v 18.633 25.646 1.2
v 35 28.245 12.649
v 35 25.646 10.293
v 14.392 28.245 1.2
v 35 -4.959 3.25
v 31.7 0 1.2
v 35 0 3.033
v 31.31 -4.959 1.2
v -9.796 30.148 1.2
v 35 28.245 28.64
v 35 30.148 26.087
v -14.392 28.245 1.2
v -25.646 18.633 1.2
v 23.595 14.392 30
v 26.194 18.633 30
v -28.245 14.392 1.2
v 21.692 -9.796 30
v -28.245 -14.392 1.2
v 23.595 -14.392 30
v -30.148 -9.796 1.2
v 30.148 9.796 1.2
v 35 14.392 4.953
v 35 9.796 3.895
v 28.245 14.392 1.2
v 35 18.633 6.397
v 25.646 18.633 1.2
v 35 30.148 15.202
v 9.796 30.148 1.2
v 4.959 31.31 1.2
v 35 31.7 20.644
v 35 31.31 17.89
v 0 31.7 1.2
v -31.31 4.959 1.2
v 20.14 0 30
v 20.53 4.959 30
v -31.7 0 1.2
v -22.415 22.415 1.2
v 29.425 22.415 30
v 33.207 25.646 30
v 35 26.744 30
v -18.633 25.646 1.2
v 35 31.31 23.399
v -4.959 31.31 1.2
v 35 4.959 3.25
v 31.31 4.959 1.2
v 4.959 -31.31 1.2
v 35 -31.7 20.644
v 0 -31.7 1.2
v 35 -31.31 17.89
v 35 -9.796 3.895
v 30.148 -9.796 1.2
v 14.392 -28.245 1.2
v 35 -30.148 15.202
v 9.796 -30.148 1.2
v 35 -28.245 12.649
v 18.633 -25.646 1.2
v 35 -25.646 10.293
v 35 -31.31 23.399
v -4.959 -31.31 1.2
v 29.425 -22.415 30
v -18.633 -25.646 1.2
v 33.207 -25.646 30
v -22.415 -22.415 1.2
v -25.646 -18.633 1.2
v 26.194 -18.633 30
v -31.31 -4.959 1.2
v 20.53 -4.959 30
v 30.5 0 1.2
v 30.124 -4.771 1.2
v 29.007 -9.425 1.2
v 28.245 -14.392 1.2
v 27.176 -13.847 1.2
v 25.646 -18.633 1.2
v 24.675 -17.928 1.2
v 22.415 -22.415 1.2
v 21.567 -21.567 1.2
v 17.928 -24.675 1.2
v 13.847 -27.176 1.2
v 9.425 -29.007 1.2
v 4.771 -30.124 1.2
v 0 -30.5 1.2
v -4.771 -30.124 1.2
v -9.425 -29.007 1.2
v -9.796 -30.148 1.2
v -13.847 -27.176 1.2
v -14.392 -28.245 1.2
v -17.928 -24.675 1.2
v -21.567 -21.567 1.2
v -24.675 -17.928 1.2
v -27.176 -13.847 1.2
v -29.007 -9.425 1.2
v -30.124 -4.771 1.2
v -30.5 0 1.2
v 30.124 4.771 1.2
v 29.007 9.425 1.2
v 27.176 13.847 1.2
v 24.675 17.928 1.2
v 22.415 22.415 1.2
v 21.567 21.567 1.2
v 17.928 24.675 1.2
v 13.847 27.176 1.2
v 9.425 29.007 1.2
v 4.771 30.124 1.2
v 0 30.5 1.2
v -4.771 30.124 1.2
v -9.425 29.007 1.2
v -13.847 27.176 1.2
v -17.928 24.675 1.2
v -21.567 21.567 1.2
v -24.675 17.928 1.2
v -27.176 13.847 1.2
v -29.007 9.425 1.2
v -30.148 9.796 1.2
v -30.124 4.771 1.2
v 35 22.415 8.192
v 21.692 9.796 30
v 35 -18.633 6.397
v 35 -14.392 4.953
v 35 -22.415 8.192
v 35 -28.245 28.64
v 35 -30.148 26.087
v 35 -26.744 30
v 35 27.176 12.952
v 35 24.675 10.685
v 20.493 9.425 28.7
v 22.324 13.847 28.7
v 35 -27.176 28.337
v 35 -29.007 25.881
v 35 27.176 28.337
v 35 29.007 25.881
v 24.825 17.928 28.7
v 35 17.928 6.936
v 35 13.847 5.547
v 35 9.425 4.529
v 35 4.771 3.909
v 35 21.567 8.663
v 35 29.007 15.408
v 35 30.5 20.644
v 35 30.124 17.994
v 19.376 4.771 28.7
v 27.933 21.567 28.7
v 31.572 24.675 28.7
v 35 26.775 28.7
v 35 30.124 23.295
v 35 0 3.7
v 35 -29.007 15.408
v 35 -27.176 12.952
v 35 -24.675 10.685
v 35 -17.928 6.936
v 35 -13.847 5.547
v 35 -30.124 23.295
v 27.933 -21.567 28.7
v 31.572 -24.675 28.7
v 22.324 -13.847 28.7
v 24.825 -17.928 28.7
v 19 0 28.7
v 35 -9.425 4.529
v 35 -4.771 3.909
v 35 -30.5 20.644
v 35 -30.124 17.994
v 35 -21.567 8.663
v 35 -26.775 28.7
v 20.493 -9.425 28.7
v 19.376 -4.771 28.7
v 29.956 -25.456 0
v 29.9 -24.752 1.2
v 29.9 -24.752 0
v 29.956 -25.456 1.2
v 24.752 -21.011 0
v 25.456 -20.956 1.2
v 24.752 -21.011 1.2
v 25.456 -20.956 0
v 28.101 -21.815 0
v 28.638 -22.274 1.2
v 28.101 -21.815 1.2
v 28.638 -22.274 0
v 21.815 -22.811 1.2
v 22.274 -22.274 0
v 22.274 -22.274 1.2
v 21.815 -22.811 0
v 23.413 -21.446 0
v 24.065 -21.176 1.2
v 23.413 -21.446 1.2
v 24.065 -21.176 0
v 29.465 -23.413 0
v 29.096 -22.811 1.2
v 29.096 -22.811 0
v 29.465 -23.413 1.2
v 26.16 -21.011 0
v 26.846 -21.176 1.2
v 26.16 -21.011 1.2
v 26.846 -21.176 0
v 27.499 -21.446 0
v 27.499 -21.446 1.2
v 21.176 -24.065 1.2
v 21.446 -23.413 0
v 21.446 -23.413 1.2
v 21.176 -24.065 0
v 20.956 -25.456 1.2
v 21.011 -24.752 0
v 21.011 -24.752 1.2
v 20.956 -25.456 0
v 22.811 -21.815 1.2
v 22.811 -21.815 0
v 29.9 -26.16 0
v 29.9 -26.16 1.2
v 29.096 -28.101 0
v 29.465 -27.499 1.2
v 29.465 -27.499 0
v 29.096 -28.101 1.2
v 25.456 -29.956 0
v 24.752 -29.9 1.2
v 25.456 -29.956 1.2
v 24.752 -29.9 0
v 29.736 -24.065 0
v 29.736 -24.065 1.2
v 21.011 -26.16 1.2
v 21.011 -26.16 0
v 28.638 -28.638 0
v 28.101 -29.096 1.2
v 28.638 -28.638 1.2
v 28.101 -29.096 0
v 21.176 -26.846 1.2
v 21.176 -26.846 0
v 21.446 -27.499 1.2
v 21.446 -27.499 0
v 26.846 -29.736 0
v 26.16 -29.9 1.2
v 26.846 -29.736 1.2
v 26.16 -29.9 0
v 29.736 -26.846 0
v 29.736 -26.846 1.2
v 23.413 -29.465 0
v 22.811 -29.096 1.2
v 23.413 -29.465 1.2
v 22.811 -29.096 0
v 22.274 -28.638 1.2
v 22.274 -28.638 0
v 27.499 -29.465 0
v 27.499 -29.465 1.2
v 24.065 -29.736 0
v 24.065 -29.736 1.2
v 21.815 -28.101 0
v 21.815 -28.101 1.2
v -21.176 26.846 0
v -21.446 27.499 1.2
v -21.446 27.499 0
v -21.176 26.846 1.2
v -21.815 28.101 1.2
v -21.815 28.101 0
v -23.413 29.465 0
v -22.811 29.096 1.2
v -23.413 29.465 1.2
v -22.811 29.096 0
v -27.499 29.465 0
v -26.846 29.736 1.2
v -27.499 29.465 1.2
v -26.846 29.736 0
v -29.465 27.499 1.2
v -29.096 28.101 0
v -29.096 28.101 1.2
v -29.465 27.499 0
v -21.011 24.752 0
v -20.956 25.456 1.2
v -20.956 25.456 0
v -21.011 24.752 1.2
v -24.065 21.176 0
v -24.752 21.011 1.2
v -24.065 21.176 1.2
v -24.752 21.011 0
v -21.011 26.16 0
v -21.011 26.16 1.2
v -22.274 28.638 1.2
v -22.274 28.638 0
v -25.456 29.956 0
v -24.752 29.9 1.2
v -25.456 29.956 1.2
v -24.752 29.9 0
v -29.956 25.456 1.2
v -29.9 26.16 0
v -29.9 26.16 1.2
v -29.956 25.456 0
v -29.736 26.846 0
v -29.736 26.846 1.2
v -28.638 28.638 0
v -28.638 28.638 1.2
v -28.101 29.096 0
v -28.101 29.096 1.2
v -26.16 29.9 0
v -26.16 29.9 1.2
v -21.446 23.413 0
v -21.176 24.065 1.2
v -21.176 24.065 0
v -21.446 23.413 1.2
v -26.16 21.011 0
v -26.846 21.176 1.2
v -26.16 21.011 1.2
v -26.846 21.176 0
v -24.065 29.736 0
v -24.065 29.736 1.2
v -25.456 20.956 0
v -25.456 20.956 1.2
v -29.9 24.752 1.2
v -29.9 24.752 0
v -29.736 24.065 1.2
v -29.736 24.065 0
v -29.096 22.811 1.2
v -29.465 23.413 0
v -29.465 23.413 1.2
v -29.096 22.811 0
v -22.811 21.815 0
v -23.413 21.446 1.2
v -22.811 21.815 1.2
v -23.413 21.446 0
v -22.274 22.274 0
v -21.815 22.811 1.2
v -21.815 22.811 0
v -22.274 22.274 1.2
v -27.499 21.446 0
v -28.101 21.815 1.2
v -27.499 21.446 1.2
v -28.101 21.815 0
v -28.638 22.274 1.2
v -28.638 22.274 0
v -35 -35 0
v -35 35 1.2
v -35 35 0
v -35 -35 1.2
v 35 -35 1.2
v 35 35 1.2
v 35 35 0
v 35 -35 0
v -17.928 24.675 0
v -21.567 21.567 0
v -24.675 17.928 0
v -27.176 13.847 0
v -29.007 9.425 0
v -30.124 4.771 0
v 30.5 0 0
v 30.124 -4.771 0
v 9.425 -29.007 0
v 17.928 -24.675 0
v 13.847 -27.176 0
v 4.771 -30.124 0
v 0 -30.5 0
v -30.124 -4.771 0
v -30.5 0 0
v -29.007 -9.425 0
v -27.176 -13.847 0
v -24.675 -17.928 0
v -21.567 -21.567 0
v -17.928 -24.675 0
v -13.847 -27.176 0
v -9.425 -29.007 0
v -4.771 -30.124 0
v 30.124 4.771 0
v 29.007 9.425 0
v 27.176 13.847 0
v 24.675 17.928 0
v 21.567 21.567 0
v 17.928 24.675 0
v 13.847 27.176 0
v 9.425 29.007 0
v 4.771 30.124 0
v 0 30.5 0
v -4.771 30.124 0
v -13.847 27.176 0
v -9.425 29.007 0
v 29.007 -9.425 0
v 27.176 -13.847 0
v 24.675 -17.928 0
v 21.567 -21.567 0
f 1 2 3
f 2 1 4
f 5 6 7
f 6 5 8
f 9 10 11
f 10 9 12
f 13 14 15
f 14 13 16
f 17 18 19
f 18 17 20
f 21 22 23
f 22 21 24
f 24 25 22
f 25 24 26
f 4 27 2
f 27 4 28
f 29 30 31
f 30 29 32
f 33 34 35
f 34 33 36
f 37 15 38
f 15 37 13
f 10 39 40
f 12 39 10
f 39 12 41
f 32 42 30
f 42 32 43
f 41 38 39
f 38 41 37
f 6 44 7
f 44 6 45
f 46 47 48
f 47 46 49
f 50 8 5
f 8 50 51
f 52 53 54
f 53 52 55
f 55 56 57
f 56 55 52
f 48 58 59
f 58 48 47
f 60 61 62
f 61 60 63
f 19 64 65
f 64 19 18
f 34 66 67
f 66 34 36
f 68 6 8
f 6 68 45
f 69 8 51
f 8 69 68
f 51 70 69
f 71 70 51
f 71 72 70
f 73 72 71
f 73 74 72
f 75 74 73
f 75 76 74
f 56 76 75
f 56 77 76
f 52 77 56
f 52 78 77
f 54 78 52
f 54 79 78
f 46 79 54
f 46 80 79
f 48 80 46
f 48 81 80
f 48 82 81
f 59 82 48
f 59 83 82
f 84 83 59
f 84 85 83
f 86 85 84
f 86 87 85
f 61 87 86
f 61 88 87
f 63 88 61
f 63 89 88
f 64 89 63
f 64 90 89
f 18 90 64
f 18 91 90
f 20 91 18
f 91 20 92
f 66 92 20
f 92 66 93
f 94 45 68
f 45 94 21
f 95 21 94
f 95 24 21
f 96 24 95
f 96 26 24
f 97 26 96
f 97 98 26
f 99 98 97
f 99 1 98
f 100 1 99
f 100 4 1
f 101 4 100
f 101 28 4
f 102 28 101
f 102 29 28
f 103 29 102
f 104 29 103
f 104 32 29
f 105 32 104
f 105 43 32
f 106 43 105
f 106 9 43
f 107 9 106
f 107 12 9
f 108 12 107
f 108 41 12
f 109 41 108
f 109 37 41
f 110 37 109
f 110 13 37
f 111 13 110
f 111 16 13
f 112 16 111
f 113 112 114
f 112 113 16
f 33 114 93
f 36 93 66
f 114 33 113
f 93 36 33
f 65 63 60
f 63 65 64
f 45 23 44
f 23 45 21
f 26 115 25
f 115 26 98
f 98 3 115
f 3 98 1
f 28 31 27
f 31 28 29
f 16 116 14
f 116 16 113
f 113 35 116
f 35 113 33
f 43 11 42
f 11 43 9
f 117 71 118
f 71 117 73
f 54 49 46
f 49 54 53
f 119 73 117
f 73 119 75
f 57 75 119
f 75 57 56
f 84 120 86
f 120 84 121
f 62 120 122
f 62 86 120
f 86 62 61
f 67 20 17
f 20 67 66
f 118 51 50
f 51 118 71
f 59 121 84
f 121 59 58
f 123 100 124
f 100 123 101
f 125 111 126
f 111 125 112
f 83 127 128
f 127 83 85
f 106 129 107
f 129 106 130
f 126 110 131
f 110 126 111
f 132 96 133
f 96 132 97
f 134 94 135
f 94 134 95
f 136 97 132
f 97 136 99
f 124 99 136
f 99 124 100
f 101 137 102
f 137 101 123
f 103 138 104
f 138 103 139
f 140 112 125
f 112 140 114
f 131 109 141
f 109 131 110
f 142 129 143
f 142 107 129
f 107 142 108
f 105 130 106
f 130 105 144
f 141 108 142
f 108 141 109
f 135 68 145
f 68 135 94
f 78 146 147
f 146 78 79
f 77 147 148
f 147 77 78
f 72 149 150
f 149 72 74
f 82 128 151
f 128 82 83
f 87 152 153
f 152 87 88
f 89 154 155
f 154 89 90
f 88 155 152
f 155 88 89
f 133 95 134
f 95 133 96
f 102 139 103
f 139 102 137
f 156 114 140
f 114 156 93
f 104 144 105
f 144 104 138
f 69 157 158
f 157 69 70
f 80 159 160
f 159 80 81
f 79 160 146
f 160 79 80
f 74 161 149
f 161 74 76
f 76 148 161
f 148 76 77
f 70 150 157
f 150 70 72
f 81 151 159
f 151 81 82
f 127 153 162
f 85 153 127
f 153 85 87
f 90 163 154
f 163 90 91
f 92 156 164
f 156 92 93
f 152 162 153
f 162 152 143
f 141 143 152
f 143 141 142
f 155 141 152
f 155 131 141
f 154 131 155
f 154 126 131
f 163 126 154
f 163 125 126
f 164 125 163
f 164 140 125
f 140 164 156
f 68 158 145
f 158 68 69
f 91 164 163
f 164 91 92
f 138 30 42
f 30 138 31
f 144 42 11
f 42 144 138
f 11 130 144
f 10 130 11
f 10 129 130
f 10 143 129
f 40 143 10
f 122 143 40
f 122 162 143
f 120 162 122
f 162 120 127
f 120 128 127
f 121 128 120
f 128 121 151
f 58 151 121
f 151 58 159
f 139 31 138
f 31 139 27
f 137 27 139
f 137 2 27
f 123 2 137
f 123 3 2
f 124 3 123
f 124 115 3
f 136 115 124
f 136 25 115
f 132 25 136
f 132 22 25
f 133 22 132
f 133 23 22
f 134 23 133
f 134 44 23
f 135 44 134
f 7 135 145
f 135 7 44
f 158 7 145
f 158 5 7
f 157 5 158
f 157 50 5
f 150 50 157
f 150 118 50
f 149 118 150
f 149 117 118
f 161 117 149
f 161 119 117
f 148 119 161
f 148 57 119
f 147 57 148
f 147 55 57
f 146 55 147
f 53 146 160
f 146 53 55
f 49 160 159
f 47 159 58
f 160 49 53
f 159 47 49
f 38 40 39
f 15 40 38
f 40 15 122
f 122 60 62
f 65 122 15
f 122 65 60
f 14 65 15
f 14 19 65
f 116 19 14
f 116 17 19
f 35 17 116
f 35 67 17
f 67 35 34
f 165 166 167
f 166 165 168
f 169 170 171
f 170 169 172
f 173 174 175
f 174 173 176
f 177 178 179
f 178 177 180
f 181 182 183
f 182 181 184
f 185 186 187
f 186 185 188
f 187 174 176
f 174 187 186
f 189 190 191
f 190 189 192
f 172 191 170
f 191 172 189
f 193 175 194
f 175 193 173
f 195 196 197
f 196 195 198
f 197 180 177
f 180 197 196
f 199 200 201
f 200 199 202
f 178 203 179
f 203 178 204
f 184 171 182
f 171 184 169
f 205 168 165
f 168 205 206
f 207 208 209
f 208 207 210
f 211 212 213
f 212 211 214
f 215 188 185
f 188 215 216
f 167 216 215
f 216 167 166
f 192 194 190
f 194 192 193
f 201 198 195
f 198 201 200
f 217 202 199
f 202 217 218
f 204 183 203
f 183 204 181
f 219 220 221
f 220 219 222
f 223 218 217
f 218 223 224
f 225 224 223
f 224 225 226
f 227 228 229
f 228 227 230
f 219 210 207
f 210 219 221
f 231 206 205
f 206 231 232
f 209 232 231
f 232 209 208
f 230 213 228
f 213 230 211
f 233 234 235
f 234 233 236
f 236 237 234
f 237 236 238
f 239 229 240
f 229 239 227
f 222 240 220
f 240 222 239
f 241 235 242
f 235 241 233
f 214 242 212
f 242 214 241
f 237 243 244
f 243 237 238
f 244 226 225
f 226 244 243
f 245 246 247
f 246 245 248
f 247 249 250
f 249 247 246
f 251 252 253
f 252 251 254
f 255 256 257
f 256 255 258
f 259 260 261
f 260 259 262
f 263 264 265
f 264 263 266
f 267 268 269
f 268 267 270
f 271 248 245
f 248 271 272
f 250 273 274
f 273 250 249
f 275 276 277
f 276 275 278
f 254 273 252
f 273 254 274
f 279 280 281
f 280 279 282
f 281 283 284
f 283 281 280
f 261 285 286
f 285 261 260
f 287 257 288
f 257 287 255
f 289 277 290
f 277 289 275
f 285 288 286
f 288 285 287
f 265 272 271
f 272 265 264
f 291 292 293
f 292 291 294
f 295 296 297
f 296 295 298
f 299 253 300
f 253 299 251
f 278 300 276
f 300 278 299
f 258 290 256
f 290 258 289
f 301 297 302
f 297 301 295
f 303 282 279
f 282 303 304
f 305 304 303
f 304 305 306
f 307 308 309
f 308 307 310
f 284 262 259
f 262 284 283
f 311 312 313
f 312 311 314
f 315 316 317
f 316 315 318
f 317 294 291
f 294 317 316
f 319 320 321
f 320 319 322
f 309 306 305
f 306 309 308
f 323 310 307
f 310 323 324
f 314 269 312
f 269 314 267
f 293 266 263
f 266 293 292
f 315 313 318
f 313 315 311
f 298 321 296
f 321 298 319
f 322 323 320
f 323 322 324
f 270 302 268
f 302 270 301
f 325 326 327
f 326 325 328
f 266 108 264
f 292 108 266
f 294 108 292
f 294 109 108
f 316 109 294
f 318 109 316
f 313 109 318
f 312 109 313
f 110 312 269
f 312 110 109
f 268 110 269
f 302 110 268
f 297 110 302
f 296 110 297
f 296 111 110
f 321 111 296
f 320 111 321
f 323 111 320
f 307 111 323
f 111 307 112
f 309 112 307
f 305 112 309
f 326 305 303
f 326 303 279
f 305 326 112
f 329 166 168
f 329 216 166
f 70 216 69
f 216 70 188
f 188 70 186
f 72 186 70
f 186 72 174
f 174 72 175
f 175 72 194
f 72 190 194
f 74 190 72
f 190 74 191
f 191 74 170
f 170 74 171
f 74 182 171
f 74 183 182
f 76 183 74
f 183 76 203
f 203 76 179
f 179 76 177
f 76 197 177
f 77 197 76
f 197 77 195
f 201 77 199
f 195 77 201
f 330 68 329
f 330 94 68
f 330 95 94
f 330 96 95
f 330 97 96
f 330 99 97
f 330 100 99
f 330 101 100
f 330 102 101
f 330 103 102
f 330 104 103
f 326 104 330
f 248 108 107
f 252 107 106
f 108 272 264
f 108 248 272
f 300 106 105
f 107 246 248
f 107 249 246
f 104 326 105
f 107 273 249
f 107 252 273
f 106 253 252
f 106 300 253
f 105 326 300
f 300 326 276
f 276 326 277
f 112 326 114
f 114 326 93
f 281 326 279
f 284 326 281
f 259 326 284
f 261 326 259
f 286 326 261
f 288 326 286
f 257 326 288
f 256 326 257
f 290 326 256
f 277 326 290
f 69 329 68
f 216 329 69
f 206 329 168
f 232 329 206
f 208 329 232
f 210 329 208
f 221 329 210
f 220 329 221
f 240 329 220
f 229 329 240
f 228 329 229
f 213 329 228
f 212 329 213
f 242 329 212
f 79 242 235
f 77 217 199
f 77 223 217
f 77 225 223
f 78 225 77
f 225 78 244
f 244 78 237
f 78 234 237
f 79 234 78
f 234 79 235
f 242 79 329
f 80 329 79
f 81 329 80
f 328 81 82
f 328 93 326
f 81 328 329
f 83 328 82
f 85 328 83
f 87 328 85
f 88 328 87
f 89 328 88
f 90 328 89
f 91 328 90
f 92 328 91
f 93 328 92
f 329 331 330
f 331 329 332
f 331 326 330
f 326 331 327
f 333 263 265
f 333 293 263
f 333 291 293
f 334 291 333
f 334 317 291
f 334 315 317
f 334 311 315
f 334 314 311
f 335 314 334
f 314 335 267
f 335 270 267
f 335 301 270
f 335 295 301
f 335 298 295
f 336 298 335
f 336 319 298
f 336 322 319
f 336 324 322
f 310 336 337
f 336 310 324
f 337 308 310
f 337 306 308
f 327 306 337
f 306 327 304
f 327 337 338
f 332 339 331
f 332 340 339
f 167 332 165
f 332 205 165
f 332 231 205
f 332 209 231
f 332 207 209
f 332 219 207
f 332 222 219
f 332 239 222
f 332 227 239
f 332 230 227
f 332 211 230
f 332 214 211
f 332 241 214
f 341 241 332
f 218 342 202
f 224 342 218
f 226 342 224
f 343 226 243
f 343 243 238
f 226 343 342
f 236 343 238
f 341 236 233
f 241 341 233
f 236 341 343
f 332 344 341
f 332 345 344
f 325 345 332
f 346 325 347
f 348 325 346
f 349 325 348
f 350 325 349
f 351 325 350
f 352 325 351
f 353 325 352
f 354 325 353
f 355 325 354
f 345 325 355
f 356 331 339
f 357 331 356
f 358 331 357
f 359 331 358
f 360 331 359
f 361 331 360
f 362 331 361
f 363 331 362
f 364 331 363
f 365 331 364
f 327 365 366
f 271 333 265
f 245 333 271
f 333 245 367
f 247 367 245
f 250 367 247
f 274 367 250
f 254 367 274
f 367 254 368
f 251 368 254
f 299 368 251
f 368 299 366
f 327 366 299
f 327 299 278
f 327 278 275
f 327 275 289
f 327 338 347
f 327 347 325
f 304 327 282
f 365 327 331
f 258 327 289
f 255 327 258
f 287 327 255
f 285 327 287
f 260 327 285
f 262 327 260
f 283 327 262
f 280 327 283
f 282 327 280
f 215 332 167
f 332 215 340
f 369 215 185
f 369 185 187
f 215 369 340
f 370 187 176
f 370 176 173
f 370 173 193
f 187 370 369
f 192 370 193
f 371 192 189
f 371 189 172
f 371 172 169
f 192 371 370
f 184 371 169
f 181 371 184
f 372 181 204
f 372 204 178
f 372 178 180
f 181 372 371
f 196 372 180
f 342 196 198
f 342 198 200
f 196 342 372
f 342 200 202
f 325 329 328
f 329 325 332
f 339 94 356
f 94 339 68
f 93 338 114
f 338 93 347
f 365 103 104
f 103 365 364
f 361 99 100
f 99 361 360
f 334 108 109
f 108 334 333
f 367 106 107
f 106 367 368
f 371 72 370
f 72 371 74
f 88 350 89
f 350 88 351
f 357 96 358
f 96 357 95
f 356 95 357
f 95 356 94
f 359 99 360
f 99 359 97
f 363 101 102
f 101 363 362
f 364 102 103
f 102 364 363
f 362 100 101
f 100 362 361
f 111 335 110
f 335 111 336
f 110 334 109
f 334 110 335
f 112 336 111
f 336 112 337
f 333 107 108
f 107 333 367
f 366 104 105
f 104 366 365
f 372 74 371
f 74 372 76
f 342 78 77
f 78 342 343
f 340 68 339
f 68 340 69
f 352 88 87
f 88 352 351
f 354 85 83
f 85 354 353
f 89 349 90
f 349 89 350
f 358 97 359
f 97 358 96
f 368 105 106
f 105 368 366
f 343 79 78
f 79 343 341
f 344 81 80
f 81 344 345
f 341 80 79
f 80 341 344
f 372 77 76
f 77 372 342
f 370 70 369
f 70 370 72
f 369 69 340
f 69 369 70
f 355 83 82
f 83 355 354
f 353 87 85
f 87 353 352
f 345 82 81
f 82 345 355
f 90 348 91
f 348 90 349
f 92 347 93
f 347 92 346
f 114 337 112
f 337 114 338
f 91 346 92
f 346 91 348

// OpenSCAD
$fn=40;

DIAMETER_IN = 61;
THICKNESS = 1.2;
SUPPORT_SIZE = 70;

M_DISTANCE = 72;
M_DIAMETER = 9;

RADIUS_IN = DIAMETER_IN / 2;
M_RADIUS = M_DIAMETER / 2;


//translate([0, 0, THICKNESS])
module shearedCylinder(shearingX=0, shearingY=0) {
    M = [[1, 0, shearingX, 0],
         [0, 1, shearingY, 0],
         [0, 0, 1, 0],
         [0, 0, 0, 1]];
    
    multmatrix(M) {
        difference() {
            cylinder(r=RADIUS_IN + THICKNESS, h=40, center=false);
            translate([0, 0, -1])
            cylinder(r=RADIUS_IN, h=28.5, center=false);
        }
    }
}

module main() {
    difference() {
        translate([0, 0, THICKNESS])
        shearedCylinder(1.8);
        translate([SUPPORT_SIZE/2, -SUPPORT_SIZE/2, 0])
        cube([SUPPORT_SIZE*2, SUPPORT_SIZE, 50], center=false);
        
        translate([-SUPPORT_SIZE/2, -SUPPORT_SIZE/2, 30])
        cube([SUPPORT_SIZE*2, SUPPORT_SIZE*2, SUPPORT_SIZE], center=false);
    }
}

module bolt_hole() {
    translate([0, 0, -1])
        cylinder(r=M_RADIUS, h=THICKNESS+2, center=false);
    
    
}

module bolt_holes() {
    m = M_DISTANCE / 2;
    shift = sqrt(m * m / 2);
    
    translate([shift, -shift, 0]) bolt_hole();
    translate([-shift, shift, 0]) bolt_hole();
}

module support() {
    difference() {
        translate([-SUPPORT_SIZE/2, -SUPPORT_SIZE/2, 0])
        cube([SUPPORT_SIZE, SUPPORT_SIZE, THICKNESS], center=false);
        translate([0, 0, -1])
        cylinder(r=RADIUS_IN, h=THICKNESS+2, center=false);
        bolt_holes();
    }
}

union() {
    main();
    support();
}
